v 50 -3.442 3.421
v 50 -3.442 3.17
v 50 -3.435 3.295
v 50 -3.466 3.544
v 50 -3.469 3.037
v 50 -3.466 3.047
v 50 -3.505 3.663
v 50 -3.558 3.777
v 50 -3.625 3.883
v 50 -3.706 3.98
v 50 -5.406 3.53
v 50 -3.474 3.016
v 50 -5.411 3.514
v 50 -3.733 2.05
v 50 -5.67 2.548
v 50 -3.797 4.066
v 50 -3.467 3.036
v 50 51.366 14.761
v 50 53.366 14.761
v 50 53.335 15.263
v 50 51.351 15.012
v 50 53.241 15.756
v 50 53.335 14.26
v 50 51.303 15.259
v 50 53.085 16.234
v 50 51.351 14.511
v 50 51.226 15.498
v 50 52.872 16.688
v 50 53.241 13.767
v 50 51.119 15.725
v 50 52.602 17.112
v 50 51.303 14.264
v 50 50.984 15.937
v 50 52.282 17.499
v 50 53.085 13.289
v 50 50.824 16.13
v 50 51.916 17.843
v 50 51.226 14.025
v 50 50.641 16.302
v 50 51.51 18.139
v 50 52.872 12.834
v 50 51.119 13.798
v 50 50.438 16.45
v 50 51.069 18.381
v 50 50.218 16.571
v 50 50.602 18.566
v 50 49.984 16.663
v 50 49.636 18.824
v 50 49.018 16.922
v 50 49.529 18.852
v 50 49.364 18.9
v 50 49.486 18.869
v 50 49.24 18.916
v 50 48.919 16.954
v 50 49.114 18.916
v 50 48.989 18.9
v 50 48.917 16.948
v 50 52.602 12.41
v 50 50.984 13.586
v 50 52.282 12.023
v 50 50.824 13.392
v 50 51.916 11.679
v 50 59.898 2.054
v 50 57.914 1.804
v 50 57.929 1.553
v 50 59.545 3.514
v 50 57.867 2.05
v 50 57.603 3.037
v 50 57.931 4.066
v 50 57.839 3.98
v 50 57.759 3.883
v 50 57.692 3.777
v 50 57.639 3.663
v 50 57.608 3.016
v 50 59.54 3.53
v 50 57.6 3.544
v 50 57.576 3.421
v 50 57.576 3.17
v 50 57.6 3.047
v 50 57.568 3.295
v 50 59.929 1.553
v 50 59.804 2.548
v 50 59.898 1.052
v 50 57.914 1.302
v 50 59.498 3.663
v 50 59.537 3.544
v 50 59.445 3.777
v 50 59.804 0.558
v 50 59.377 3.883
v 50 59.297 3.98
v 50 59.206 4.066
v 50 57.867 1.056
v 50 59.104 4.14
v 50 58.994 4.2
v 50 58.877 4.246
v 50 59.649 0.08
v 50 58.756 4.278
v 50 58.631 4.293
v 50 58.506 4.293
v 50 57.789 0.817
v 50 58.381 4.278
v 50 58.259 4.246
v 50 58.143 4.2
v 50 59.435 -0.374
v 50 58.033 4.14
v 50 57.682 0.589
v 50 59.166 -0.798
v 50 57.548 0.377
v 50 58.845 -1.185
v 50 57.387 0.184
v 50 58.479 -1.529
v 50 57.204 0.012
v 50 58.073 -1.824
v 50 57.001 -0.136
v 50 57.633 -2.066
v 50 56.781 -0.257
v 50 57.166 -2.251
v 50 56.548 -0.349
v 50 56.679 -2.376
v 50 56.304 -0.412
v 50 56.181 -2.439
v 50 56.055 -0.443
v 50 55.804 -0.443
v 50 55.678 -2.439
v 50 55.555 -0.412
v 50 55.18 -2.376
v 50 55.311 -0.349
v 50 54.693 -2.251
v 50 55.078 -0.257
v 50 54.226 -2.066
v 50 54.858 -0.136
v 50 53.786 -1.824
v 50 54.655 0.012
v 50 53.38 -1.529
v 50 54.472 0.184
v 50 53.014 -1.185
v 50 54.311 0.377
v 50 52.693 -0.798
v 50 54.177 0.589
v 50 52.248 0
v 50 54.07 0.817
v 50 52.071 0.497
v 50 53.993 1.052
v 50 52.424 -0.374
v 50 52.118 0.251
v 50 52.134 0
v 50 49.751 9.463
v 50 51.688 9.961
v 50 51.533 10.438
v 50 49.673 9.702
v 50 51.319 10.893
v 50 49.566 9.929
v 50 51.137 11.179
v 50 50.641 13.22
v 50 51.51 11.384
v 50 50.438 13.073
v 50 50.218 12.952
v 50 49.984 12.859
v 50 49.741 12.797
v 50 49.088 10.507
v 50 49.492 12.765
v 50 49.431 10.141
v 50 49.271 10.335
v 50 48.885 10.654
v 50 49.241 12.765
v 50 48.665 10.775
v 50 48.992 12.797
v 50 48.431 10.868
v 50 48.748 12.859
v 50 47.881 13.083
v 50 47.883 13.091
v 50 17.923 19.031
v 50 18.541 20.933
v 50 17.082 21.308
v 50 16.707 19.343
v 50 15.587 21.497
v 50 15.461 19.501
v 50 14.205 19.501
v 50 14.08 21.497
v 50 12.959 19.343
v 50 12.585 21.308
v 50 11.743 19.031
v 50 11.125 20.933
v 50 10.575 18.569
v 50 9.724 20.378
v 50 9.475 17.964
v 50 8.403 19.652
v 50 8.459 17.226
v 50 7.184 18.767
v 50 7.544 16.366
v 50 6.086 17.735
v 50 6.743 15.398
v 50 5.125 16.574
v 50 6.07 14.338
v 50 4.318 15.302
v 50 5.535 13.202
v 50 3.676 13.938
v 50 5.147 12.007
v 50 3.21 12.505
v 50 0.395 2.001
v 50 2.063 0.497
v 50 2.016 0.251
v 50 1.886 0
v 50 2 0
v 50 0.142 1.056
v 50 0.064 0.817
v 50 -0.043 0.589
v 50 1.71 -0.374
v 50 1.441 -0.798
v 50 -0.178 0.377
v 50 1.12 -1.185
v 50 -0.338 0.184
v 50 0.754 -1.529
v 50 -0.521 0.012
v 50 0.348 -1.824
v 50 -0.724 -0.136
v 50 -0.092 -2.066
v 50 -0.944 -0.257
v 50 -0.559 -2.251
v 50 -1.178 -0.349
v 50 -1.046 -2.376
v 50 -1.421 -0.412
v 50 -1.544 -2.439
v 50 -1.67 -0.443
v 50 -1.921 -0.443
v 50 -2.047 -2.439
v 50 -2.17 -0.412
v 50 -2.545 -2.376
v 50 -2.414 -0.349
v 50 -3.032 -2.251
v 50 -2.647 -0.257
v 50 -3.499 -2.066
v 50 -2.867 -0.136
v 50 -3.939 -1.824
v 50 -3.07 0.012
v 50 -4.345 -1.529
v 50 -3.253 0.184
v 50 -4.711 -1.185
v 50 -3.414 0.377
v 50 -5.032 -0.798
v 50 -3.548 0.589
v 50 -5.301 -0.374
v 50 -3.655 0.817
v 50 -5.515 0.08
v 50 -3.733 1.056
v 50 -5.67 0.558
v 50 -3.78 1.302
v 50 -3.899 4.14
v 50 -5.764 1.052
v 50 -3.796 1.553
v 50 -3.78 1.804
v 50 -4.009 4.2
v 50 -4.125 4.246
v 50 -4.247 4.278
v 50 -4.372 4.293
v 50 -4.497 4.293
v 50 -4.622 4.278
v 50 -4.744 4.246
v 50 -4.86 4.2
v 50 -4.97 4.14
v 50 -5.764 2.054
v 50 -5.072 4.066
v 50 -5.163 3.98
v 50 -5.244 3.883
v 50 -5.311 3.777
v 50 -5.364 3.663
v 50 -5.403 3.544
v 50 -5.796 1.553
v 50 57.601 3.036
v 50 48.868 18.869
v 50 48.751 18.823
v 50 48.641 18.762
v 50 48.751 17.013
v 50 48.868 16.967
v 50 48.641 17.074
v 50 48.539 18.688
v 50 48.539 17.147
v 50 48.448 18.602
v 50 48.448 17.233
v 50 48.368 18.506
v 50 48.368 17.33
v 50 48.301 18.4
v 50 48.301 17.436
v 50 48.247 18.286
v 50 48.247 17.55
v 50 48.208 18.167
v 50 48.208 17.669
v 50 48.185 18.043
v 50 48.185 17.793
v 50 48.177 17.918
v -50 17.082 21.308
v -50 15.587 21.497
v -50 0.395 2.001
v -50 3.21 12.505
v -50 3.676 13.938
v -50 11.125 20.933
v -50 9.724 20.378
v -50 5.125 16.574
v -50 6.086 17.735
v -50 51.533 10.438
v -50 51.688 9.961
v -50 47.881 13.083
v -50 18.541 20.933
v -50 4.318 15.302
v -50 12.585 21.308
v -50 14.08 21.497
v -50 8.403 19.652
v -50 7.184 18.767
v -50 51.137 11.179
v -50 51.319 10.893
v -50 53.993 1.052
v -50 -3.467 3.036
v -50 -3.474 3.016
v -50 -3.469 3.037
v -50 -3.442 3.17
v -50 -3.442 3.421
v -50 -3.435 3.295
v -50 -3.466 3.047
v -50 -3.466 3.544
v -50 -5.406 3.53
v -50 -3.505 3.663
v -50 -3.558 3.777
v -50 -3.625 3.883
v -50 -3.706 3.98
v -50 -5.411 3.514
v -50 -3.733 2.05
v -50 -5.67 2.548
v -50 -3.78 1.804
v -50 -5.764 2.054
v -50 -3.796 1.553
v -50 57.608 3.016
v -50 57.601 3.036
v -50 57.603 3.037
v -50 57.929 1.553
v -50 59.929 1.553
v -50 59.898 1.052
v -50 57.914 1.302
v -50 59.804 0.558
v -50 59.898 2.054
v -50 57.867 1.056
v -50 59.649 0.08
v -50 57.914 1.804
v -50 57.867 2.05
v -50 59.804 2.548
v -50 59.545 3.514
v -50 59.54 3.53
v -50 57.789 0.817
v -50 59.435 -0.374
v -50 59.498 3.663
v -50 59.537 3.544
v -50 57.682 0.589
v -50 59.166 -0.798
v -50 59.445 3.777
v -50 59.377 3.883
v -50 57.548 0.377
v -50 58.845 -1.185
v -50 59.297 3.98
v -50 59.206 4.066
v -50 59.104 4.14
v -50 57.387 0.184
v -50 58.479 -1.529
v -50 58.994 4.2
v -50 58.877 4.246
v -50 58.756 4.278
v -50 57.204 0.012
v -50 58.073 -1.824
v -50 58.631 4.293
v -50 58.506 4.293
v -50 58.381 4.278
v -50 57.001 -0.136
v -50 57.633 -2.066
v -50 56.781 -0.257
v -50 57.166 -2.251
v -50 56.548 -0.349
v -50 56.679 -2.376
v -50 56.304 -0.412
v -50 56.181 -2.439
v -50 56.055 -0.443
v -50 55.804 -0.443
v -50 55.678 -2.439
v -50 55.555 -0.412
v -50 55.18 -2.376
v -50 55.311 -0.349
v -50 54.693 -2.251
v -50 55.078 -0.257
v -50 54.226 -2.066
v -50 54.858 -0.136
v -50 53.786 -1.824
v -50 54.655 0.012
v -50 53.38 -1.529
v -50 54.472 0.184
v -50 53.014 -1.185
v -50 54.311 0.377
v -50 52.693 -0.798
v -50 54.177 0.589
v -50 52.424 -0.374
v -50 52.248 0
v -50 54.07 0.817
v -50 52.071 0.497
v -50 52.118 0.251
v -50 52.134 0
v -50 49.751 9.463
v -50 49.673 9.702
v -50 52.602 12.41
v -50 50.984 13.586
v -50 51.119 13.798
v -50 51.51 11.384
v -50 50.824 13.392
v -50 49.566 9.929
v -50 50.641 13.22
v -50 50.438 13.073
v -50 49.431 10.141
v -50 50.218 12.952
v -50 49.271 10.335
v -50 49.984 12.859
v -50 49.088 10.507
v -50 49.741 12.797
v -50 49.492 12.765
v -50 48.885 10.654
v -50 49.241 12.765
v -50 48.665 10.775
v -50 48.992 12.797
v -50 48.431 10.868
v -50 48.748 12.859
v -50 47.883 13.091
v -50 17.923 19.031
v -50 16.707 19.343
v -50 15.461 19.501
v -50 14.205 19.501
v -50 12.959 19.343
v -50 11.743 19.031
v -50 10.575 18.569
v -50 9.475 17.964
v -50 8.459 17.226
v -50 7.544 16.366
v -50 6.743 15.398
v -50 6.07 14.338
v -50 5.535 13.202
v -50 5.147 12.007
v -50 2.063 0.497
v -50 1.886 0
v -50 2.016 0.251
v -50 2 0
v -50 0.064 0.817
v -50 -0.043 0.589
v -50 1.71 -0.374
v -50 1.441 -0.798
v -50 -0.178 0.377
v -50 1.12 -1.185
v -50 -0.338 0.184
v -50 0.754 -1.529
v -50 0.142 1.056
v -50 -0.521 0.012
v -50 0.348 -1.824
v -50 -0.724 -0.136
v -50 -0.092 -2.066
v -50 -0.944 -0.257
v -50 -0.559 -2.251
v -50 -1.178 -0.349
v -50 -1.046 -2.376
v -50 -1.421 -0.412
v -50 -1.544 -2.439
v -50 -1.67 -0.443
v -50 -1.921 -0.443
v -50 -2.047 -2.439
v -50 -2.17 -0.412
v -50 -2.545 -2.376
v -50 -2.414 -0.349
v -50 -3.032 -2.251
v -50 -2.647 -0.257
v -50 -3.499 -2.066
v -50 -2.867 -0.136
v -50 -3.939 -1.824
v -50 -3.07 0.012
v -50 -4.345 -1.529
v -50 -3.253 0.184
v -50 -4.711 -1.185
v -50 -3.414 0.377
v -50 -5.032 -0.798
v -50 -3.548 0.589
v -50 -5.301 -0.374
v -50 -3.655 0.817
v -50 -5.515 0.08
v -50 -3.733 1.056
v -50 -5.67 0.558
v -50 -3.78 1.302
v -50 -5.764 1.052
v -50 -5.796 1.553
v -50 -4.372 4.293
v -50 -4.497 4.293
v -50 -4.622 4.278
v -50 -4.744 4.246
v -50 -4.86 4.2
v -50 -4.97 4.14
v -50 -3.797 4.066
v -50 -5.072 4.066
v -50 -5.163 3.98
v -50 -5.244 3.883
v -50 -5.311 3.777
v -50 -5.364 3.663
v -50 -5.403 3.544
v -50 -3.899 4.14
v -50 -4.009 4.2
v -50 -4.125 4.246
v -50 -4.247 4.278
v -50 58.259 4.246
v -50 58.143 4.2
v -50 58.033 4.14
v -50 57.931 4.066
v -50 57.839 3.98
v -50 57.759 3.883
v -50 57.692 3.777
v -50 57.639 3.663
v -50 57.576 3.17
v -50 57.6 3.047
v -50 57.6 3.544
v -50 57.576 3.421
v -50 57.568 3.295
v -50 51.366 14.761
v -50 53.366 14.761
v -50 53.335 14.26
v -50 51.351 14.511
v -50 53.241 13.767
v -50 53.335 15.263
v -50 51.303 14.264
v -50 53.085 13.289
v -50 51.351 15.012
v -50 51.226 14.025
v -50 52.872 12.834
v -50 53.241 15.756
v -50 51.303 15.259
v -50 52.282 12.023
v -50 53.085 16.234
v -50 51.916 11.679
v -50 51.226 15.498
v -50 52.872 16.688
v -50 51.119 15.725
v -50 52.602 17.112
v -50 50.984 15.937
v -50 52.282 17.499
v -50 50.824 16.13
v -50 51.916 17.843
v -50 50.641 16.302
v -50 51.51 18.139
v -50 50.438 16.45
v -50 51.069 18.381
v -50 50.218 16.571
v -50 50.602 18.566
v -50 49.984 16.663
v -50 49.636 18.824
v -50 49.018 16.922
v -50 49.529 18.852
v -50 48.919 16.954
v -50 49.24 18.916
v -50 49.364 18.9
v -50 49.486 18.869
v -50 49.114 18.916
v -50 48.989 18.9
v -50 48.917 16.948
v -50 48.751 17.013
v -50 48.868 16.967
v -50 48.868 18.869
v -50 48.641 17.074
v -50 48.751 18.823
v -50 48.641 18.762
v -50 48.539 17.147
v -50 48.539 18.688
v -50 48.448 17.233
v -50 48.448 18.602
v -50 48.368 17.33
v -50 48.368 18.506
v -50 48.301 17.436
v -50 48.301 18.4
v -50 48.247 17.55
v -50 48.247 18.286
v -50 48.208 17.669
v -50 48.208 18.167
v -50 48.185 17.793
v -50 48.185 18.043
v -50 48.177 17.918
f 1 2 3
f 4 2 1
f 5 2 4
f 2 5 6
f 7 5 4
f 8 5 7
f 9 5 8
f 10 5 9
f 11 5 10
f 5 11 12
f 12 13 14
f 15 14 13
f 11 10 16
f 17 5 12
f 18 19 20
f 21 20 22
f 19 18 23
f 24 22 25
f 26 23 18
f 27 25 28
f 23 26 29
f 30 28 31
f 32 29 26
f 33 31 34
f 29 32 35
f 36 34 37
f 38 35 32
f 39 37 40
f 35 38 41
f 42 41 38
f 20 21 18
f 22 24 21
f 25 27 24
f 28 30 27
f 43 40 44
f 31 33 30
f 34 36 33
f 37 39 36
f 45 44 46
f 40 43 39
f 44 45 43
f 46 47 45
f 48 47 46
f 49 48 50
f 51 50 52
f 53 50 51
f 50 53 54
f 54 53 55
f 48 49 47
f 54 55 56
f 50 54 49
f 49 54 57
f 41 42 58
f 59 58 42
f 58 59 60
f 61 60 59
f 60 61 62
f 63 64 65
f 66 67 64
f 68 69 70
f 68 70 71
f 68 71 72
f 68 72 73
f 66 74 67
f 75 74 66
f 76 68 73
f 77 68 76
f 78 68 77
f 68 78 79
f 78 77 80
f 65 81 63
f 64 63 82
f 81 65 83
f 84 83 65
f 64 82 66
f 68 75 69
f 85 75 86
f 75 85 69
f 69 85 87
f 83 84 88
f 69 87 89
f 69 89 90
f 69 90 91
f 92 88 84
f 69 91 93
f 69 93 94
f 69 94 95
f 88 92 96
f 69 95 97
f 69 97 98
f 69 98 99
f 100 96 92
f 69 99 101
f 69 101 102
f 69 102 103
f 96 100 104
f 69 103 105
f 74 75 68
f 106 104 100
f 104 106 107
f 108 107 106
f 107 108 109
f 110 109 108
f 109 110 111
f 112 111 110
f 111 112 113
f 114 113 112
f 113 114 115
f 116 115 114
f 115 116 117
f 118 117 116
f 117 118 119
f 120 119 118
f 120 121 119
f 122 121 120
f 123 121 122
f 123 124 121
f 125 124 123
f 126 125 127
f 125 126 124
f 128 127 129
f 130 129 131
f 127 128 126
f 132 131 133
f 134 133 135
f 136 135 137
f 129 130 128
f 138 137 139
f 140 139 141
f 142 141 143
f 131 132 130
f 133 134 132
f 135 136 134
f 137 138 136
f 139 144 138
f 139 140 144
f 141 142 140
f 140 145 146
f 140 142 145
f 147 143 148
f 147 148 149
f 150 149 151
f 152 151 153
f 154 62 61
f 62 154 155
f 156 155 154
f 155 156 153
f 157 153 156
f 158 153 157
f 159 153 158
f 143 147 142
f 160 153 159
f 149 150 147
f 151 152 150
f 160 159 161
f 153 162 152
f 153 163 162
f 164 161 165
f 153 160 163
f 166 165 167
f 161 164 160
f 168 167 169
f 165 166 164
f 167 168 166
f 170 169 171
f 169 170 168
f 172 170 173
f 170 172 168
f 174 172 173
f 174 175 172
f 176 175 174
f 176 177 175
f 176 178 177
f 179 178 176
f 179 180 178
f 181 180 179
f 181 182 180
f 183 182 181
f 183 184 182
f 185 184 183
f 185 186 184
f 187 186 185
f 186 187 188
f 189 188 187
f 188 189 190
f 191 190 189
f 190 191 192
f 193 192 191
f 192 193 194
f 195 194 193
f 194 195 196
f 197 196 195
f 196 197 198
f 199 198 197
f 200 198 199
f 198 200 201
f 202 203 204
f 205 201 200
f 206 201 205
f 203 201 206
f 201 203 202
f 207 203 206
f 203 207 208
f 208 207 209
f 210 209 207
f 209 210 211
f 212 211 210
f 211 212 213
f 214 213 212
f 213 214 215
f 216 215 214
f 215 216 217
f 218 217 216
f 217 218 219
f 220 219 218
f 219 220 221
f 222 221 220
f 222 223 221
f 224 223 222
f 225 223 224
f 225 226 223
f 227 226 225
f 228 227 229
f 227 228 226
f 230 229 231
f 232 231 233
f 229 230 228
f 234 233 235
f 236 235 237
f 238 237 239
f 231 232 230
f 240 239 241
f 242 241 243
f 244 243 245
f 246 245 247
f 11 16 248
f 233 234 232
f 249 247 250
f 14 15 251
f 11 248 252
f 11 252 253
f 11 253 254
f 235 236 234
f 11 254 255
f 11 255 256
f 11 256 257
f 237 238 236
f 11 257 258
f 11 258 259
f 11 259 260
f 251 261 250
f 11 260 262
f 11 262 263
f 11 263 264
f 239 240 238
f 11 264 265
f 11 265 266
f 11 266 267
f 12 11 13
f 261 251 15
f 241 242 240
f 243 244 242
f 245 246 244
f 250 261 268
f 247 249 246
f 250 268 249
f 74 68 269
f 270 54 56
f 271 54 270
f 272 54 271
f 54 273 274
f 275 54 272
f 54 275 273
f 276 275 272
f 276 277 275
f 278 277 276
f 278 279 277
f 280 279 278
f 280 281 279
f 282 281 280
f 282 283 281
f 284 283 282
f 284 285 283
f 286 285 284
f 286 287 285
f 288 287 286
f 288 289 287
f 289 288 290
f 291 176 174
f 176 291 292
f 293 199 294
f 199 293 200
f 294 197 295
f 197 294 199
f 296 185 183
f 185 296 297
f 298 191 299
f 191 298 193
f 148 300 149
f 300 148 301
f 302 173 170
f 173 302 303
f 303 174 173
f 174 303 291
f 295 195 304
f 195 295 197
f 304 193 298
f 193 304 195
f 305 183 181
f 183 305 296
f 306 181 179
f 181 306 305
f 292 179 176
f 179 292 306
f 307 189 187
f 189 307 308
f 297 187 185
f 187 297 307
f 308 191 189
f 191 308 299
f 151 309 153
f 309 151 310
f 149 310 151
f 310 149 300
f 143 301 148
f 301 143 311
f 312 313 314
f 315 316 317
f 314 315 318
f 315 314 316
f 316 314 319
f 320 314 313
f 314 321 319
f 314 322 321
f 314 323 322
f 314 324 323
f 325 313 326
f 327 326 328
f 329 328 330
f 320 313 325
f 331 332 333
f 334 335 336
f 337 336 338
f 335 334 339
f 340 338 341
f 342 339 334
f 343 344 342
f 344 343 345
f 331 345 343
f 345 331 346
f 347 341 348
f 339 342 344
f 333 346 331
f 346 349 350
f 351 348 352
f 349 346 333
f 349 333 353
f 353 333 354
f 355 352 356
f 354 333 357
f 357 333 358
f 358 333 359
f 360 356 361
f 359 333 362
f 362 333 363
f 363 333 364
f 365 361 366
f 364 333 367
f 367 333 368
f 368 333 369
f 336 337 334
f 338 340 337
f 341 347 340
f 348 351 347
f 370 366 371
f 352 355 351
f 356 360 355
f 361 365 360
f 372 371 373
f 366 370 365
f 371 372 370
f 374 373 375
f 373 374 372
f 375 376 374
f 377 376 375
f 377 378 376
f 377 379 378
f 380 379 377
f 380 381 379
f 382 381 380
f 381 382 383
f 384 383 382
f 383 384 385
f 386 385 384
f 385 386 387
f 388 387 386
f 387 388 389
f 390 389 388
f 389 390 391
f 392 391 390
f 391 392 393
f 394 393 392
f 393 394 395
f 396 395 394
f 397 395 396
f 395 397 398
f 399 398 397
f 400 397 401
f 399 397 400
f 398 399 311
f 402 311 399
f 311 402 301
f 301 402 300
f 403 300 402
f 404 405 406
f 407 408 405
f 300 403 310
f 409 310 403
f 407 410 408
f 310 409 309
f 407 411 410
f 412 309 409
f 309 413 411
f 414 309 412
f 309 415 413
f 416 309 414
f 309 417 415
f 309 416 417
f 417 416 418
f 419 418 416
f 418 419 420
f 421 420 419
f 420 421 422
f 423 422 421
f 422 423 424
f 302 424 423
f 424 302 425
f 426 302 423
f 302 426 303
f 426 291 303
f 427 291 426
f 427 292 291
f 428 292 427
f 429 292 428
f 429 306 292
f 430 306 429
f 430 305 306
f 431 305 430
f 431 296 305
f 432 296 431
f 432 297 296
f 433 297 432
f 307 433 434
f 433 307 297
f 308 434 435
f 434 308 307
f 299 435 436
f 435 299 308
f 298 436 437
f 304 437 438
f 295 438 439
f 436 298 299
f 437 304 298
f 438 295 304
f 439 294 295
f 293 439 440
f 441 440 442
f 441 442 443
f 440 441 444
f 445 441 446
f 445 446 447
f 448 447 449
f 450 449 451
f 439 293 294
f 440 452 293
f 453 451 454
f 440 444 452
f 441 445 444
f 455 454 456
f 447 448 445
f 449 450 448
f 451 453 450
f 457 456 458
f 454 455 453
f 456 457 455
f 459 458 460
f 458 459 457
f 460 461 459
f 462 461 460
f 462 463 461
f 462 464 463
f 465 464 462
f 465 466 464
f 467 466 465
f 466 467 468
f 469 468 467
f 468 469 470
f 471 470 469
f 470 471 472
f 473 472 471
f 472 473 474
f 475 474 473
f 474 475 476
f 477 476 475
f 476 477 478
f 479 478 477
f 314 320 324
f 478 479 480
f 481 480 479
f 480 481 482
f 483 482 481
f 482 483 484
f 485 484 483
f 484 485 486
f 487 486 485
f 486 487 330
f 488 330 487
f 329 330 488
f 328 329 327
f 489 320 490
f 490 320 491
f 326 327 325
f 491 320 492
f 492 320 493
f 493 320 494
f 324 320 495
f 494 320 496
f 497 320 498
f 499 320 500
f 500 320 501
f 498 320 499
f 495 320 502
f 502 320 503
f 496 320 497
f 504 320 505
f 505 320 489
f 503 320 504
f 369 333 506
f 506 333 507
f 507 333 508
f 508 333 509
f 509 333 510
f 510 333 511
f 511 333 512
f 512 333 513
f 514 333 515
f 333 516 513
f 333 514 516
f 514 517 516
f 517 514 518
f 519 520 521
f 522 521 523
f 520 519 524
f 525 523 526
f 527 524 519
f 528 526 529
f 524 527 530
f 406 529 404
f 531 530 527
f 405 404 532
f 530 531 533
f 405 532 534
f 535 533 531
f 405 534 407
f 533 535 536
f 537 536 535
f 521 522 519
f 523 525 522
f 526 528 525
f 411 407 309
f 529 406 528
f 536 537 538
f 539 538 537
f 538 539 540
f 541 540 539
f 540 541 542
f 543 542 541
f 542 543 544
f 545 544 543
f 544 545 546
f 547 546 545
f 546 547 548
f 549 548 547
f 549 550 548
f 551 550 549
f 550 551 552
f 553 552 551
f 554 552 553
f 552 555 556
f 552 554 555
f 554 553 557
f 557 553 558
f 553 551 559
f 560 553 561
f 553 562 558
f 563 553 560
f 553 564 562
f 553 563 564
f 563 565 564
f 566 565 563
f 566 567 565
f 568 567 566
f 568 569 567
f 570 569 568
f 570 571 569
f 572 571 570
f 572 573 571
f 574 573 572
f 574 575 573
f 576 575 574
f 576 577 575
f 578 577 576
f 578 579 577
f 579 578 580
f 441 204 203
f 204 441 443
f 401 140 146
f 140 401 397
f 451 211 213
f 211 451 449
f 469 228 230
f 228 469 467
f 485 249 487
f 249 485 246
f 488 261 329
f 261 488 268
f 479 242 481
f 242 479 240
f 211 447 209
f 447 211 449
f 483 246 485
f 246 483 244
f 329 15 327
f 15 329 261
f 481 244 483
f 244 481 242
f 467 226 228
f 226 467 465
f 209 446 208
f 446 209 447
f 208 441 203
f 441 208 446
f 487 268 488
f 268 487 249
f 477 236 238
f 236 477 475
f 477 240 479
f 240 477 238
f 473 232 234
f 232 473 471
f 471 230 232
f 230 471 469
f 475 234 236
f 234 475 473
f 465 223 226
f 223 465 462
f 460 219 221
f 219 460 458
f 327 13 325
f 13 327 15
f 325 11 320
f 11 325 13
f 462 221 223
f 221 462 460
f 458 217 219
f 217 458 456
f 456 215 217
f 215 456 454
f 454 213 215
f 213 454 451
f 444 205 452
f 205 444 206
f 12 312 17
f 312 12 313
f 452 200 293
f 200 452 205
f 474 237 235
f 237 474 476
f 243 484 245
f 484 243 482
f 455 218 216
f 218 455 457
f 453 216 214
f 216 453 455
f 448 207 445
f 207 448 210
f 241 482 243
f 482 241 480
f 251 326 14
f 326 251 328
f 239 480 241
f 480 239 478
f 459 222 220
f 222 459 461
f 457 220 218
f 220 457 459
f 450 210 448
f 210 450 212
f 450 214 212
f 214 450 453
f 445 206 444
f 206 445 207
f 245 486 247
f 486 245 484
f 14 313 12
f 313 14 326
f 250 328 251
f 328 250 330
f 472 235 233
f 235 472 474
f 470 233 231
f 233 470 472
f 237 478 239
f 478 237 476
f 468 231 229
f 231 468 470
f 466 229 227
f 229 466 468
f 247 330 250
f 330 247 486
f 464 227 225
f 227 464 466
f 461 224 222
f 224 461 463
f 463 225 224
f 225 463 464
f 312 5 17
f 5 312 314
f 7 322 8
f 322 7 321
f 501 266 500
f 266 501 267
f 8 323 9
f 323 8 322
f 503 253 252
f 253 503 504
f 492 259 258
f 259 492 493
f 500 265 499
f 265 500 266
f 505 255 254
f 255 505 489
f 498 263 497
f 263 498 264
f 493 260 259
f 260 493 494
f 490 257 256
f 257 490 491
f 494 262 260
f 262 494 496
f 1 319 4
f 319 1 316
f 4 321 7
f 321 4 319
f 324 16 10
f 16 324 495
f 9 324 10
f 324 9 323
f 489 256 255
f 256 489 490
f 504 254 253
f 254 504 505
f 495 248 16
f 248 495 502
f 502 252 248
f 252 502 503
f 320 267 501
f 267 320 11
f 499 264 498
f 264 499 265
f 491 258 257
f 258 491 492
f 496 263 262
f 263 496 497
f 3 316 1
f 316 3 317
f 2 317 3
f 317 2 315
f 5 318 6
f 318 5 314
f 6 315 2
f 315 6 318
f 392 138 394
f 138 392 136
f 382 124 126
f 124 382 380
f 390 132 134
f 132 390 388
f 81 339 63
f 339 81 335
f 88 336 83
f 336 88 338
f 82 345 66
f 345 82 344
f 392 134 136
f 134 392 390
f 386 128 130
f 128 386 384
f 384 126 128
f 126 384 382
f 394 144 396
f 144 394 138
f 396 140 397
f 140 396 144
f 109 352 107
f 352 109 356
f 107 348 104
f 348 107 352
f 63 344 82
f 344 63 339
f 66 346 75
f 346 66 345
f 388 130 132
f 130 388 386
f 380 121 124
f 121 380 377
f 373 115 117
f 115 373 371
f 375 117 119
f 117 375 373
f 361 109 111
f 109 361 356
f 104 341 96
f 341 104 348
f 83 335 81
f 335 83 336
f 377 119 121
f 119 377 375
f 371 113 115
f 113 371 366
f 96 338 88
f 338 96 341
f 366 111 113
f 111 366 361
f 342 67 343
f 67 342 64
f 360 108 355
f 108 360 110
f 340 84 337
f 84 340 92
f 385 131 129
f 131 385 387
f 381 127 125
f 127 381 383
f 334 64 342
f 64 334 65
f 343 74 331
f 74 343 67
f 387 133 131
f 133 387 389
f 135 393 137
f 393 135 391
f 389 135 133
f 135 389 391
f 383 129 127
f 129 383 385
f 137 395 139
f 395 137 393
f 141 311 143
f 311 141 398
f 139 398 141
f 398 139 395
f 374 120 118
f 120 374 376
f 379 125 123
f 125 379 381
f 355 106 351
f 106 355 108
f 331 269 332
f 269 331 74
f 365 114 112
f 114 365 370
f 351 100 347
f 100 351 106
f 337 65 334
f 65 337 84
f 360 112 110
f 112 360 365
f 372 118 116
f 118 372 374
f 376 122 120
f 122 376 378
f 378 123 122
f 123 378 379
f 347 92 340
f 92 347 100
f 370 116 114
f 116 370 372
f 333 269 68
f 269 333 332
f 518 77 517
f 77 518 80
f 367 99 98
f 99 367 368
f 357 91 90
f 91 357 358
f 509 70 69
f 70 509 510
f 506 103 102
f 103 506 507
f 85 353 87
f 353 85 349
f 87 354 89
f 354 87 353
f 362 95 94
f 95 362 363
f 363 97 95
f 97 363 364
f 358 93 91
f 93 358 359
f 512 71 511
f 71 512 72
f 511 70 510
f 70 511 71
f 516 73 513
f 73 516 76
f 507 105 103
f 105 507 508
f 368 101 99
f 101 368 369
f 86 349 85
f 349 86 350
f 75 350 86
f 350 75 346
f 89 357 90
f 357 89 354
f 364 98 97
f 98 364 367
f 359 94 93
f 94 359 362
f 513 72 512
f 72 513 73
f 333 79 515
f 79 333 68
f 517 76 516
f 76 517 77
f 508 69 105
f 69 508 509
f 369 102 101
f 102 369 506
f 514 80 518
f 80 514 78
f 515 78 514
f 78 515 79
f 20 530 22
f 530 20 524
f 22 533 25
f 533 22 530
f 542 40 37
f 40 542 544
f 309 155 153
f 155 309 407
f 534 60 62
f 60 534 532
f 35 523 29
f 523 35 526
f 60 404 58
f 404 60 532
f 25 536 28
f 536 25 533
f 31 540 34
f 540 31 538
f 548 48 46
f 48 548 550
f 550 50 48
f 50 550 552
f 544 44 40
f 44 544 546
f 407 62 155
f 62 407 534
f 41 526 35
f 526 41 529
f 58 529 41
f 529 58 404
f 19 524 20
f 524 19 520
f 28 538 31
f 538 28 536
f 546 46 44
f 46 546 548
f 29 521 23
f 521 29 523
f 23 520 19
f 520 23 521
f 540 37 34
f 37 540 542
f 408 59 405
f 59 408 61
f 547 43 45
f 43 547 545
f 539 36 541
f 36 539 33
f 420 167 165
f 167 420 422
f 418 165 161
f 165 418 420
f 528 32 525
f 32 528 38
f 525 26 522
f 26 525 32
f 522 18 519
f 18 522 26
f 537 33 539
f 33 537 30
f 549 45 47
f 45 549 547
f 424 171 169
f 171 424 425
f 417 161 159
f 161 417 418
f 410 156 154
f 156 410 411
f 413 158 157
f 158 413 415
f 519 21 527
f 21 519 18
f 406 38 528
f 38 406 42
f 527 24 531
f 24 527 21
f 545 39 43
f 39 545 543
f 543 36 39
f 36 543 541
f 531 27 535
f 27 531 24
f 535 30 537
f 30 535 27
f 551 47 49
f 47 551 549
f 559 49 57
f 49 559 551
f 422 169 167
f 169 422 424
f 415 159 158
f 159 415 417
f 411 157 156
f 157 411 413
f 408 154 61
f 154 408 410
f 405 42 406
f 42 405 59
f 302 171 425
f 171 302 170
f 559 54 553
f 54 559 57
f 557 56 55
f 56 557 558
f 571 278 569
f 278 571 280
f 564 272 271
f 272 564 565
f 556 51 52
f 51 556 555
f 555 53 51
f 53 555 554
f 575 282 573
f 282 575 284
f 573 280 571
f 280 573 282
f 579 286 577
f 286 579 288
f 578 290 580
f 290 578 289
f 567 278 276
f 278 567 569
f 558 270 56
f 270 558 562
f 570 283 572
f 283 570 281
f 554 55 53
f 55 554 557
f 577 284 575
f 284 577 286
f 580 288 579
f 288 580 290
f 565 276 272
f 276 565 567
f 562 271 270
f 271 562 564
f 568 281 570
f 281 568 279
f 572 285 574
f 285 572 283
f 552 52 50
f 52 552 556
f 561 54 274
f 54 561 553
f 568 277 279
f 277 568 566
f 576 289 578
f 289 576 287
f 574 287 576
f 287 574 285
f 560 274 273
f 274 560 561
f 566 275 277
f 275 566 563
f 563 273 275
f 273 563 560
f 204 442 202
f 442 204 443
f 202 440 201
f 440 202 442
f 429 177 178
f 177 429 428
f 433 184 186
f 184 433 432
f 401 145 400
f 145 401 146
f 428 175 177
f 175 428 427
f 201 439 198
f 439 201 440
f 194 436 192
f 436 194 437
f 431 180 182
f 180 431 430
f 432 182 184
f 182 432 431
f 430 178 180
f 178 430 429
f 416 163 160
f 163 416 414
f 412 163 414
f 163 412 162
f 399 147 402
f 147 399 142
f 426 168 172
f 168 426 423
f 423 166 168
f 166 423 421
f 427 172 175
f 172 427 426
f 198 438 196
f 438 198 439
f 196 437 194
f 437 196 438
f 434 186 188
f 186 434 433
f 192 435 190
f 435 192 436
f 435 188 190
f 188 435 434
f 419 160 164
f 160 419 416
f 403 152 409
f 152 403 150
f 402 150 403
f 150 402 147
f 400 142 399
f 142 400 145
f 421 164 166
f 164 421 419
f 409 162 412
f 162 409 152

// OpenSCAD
$fn = 50;

shift = 1;

angle = 15;
radius = 4;
width = 100;
height = 20;
depth = 40;
edge = radius / 2;

x = 0;
y = 1;
z = 2;

fb = [0, radius, 0];
ft0 = [0, fb[y] + sin(angle) * height, fb[z] + cos(angle) * height];
ft = [0, fb[y] + sin(angle) * (height - 2 * radius) + cos(angle) * 2 * radius, fb[z] + cos(angle) * (height - 2 * radius) - sin(angle) * 2 * radius];
rt = [0, ft0[y] + cos(angle) * depth, ft0[z] - sin(angle) * depth];
rb = [0, rt[y] + sin(angle) * rt[z], fb[z]];

fl0 = [0, fb[y] - cos(angle) * 1.5 * radius, fb[z] + sin(angle) * 1.5 * radius];
fl1 = [0, fl0[y], fl0[z]];
fl2 = [0, fl0[y] + sin(angle) * radius / 4, fl0[z] + cos(angle) * radius / 4];

rl0 = [0, rb[y] + cos(angle) * 1.5 * radius, rb[z] + sin(angle) * 1.5 * radius];
rl1 = [0, rl0[y], rl0[z]];
rl2 = [0, rl0[y] - sin(angle) * radius / 4, rl0[z] + cos(angle) * radius / 4];

tl0 = [0, rt[y] + sin(angle) * 1.5 * radius, rt[z] + cos(angle) * 1.5 * radius];
tl1 = [0, tl0[y], tl0[z]];
tl2 = [0, tl0[y] - cos(angle) * radius / 4, tl0[z] + sin(angle) * radius / 4];

difference() {
  union() {
    difference() {
      body();
      floorCutout();
    }

    frontLip();
    rearLip();
    topLip();
  }

  bodyHole();
}

module body() {
  hull() {
    translate(fb) rotate([90, 0, 90]) cylinder(r=radius, h=width, center=true);
    translate(ft) rotate([90, 0, 90]) cylinder(r=3 * radius, h=width, center=true);
    translate(rt) rotate([90, 0, 90]) cylinder(r=radius, h=width, center=true);
    translate(rb) rotate([90, 0, 90]) cylinder(r=radius, h=width, center=true);
  }
}

module bodyHole() {
  hull() {
    translate(fb) rotate([90, 0, 90]) cylinder(r=radius - edge, h=width + shift, center=true);
    translate(ft) rotate([90, 0, 90]) cylinder(r=3 * radius - edge, h=width + shift, center=true);
    translate(rt) rotate([90, 0, 90]) cylinder(r=radius - edge, h=width + shift, center=true);
    translate(rb) rotate([90, 0, 90]) cylinder(r=radius - edge, h=width + shift, center=true);
  }
}

module floorCutout() {
  translate([0, (rb[y] - fb[y] + 2 * radius) / 2, fb[z] - (radius + shift) / 2]) cube([width + shift, rb[y] - fb[y] + 2 * radius + shift, radius + shift], center=true);
}

module frontLip() {
  difference() {
    hull() {
      translate(fl1) rotate([90, 0, 90]) cylinder(r=radius, h=width, center=true);
      translate(fl2) rotate([90, 0, 90]) cylinder(r=radius, h=width, center=true);
    }

    hull() {
      translate(fl1) rotate([90, 0, 90]) cylinder(r=radius / 2, h=width + shift, center=true);
      translate(fl2) rotate([90, 0, 90]) cylinder(r=radius / 2, h=width + shift, center=true);
    }

    translate(fl2) rotate([-angle, 0, 0]) translate([0, 0, radius]) cube([width + shift, 2 * radius + shift, 2 * radius], center=true);
  }

  translate([fl2[x], fl2[y] - cos(angle) * .75 * radius, fl2[z] + sin(angle) * .75 * radius]) rotate([90, 0, 90]) cylinder(r=radius / 4, h=width, center=true);
}

module rearLip() {
  difference() {
    hull() {
      translate(rl1) rotate([90, 0, 90]) cylinder(r=radius, h=width, center=true);
      translate(rl2) rotate([90, 0, 90]) cylinder(r=radius, h=width, center=true);
    }

    hull() {
      translate(rl1) rotate([90, 0, 90]) cylinder(r=radius / 2, h=width + shift, center=true);
      translate(rl2) rotate([90, 0, 90]) cylinder(r=radius / 2, h=width + shift, center=true);
    }

    translate(rl2) rotate([angle, 0, 0]) translate([0, 0, radius]) cube([width + shift, 2 * radius + shift, 2 * radius], center=true);
  }

  translate([rl2[x], rl2[y] + cos(angle) * .75 * radius, rl2[z] + sin(angle) * .75 * radius]) rotate([90, 0, 90]) cylinder(r=radius / 4, h=width, center=true);
}

module topLip() {
  difference() {
    hull() {
      translate(tl1) rotate([90, 0, 90]) cylinder(r=radius, h=width, center=true);
      translate(tl2) rotate([90, 0, 90]) cylinder(r=radius, h=width, center=true);
    }

    hull() {
      translate(tl1) rotate([90, 0, 90]) cylinder(r=radius / 2, h=width + shift, center=true);
      translate(tl2) rotate([90, 0, 90]) cylinder(r=radius / 2, h=width + shift, center=true);
    }

    translate(tl2) rotate([90 - angle, 0, 0]) translate([0, 0, radius]) cube([width + shift, 2 * radius + shift, 2 * radius], center=true);
  }

  translate([tl2[x], tl2[y] + sin(angle) * .75 * radius, tl2[z] + cos(angle) * .75 * radius]) rotate([90, 0, 90]) cylinder(r=radius / 4, h=width, center=true);
}
